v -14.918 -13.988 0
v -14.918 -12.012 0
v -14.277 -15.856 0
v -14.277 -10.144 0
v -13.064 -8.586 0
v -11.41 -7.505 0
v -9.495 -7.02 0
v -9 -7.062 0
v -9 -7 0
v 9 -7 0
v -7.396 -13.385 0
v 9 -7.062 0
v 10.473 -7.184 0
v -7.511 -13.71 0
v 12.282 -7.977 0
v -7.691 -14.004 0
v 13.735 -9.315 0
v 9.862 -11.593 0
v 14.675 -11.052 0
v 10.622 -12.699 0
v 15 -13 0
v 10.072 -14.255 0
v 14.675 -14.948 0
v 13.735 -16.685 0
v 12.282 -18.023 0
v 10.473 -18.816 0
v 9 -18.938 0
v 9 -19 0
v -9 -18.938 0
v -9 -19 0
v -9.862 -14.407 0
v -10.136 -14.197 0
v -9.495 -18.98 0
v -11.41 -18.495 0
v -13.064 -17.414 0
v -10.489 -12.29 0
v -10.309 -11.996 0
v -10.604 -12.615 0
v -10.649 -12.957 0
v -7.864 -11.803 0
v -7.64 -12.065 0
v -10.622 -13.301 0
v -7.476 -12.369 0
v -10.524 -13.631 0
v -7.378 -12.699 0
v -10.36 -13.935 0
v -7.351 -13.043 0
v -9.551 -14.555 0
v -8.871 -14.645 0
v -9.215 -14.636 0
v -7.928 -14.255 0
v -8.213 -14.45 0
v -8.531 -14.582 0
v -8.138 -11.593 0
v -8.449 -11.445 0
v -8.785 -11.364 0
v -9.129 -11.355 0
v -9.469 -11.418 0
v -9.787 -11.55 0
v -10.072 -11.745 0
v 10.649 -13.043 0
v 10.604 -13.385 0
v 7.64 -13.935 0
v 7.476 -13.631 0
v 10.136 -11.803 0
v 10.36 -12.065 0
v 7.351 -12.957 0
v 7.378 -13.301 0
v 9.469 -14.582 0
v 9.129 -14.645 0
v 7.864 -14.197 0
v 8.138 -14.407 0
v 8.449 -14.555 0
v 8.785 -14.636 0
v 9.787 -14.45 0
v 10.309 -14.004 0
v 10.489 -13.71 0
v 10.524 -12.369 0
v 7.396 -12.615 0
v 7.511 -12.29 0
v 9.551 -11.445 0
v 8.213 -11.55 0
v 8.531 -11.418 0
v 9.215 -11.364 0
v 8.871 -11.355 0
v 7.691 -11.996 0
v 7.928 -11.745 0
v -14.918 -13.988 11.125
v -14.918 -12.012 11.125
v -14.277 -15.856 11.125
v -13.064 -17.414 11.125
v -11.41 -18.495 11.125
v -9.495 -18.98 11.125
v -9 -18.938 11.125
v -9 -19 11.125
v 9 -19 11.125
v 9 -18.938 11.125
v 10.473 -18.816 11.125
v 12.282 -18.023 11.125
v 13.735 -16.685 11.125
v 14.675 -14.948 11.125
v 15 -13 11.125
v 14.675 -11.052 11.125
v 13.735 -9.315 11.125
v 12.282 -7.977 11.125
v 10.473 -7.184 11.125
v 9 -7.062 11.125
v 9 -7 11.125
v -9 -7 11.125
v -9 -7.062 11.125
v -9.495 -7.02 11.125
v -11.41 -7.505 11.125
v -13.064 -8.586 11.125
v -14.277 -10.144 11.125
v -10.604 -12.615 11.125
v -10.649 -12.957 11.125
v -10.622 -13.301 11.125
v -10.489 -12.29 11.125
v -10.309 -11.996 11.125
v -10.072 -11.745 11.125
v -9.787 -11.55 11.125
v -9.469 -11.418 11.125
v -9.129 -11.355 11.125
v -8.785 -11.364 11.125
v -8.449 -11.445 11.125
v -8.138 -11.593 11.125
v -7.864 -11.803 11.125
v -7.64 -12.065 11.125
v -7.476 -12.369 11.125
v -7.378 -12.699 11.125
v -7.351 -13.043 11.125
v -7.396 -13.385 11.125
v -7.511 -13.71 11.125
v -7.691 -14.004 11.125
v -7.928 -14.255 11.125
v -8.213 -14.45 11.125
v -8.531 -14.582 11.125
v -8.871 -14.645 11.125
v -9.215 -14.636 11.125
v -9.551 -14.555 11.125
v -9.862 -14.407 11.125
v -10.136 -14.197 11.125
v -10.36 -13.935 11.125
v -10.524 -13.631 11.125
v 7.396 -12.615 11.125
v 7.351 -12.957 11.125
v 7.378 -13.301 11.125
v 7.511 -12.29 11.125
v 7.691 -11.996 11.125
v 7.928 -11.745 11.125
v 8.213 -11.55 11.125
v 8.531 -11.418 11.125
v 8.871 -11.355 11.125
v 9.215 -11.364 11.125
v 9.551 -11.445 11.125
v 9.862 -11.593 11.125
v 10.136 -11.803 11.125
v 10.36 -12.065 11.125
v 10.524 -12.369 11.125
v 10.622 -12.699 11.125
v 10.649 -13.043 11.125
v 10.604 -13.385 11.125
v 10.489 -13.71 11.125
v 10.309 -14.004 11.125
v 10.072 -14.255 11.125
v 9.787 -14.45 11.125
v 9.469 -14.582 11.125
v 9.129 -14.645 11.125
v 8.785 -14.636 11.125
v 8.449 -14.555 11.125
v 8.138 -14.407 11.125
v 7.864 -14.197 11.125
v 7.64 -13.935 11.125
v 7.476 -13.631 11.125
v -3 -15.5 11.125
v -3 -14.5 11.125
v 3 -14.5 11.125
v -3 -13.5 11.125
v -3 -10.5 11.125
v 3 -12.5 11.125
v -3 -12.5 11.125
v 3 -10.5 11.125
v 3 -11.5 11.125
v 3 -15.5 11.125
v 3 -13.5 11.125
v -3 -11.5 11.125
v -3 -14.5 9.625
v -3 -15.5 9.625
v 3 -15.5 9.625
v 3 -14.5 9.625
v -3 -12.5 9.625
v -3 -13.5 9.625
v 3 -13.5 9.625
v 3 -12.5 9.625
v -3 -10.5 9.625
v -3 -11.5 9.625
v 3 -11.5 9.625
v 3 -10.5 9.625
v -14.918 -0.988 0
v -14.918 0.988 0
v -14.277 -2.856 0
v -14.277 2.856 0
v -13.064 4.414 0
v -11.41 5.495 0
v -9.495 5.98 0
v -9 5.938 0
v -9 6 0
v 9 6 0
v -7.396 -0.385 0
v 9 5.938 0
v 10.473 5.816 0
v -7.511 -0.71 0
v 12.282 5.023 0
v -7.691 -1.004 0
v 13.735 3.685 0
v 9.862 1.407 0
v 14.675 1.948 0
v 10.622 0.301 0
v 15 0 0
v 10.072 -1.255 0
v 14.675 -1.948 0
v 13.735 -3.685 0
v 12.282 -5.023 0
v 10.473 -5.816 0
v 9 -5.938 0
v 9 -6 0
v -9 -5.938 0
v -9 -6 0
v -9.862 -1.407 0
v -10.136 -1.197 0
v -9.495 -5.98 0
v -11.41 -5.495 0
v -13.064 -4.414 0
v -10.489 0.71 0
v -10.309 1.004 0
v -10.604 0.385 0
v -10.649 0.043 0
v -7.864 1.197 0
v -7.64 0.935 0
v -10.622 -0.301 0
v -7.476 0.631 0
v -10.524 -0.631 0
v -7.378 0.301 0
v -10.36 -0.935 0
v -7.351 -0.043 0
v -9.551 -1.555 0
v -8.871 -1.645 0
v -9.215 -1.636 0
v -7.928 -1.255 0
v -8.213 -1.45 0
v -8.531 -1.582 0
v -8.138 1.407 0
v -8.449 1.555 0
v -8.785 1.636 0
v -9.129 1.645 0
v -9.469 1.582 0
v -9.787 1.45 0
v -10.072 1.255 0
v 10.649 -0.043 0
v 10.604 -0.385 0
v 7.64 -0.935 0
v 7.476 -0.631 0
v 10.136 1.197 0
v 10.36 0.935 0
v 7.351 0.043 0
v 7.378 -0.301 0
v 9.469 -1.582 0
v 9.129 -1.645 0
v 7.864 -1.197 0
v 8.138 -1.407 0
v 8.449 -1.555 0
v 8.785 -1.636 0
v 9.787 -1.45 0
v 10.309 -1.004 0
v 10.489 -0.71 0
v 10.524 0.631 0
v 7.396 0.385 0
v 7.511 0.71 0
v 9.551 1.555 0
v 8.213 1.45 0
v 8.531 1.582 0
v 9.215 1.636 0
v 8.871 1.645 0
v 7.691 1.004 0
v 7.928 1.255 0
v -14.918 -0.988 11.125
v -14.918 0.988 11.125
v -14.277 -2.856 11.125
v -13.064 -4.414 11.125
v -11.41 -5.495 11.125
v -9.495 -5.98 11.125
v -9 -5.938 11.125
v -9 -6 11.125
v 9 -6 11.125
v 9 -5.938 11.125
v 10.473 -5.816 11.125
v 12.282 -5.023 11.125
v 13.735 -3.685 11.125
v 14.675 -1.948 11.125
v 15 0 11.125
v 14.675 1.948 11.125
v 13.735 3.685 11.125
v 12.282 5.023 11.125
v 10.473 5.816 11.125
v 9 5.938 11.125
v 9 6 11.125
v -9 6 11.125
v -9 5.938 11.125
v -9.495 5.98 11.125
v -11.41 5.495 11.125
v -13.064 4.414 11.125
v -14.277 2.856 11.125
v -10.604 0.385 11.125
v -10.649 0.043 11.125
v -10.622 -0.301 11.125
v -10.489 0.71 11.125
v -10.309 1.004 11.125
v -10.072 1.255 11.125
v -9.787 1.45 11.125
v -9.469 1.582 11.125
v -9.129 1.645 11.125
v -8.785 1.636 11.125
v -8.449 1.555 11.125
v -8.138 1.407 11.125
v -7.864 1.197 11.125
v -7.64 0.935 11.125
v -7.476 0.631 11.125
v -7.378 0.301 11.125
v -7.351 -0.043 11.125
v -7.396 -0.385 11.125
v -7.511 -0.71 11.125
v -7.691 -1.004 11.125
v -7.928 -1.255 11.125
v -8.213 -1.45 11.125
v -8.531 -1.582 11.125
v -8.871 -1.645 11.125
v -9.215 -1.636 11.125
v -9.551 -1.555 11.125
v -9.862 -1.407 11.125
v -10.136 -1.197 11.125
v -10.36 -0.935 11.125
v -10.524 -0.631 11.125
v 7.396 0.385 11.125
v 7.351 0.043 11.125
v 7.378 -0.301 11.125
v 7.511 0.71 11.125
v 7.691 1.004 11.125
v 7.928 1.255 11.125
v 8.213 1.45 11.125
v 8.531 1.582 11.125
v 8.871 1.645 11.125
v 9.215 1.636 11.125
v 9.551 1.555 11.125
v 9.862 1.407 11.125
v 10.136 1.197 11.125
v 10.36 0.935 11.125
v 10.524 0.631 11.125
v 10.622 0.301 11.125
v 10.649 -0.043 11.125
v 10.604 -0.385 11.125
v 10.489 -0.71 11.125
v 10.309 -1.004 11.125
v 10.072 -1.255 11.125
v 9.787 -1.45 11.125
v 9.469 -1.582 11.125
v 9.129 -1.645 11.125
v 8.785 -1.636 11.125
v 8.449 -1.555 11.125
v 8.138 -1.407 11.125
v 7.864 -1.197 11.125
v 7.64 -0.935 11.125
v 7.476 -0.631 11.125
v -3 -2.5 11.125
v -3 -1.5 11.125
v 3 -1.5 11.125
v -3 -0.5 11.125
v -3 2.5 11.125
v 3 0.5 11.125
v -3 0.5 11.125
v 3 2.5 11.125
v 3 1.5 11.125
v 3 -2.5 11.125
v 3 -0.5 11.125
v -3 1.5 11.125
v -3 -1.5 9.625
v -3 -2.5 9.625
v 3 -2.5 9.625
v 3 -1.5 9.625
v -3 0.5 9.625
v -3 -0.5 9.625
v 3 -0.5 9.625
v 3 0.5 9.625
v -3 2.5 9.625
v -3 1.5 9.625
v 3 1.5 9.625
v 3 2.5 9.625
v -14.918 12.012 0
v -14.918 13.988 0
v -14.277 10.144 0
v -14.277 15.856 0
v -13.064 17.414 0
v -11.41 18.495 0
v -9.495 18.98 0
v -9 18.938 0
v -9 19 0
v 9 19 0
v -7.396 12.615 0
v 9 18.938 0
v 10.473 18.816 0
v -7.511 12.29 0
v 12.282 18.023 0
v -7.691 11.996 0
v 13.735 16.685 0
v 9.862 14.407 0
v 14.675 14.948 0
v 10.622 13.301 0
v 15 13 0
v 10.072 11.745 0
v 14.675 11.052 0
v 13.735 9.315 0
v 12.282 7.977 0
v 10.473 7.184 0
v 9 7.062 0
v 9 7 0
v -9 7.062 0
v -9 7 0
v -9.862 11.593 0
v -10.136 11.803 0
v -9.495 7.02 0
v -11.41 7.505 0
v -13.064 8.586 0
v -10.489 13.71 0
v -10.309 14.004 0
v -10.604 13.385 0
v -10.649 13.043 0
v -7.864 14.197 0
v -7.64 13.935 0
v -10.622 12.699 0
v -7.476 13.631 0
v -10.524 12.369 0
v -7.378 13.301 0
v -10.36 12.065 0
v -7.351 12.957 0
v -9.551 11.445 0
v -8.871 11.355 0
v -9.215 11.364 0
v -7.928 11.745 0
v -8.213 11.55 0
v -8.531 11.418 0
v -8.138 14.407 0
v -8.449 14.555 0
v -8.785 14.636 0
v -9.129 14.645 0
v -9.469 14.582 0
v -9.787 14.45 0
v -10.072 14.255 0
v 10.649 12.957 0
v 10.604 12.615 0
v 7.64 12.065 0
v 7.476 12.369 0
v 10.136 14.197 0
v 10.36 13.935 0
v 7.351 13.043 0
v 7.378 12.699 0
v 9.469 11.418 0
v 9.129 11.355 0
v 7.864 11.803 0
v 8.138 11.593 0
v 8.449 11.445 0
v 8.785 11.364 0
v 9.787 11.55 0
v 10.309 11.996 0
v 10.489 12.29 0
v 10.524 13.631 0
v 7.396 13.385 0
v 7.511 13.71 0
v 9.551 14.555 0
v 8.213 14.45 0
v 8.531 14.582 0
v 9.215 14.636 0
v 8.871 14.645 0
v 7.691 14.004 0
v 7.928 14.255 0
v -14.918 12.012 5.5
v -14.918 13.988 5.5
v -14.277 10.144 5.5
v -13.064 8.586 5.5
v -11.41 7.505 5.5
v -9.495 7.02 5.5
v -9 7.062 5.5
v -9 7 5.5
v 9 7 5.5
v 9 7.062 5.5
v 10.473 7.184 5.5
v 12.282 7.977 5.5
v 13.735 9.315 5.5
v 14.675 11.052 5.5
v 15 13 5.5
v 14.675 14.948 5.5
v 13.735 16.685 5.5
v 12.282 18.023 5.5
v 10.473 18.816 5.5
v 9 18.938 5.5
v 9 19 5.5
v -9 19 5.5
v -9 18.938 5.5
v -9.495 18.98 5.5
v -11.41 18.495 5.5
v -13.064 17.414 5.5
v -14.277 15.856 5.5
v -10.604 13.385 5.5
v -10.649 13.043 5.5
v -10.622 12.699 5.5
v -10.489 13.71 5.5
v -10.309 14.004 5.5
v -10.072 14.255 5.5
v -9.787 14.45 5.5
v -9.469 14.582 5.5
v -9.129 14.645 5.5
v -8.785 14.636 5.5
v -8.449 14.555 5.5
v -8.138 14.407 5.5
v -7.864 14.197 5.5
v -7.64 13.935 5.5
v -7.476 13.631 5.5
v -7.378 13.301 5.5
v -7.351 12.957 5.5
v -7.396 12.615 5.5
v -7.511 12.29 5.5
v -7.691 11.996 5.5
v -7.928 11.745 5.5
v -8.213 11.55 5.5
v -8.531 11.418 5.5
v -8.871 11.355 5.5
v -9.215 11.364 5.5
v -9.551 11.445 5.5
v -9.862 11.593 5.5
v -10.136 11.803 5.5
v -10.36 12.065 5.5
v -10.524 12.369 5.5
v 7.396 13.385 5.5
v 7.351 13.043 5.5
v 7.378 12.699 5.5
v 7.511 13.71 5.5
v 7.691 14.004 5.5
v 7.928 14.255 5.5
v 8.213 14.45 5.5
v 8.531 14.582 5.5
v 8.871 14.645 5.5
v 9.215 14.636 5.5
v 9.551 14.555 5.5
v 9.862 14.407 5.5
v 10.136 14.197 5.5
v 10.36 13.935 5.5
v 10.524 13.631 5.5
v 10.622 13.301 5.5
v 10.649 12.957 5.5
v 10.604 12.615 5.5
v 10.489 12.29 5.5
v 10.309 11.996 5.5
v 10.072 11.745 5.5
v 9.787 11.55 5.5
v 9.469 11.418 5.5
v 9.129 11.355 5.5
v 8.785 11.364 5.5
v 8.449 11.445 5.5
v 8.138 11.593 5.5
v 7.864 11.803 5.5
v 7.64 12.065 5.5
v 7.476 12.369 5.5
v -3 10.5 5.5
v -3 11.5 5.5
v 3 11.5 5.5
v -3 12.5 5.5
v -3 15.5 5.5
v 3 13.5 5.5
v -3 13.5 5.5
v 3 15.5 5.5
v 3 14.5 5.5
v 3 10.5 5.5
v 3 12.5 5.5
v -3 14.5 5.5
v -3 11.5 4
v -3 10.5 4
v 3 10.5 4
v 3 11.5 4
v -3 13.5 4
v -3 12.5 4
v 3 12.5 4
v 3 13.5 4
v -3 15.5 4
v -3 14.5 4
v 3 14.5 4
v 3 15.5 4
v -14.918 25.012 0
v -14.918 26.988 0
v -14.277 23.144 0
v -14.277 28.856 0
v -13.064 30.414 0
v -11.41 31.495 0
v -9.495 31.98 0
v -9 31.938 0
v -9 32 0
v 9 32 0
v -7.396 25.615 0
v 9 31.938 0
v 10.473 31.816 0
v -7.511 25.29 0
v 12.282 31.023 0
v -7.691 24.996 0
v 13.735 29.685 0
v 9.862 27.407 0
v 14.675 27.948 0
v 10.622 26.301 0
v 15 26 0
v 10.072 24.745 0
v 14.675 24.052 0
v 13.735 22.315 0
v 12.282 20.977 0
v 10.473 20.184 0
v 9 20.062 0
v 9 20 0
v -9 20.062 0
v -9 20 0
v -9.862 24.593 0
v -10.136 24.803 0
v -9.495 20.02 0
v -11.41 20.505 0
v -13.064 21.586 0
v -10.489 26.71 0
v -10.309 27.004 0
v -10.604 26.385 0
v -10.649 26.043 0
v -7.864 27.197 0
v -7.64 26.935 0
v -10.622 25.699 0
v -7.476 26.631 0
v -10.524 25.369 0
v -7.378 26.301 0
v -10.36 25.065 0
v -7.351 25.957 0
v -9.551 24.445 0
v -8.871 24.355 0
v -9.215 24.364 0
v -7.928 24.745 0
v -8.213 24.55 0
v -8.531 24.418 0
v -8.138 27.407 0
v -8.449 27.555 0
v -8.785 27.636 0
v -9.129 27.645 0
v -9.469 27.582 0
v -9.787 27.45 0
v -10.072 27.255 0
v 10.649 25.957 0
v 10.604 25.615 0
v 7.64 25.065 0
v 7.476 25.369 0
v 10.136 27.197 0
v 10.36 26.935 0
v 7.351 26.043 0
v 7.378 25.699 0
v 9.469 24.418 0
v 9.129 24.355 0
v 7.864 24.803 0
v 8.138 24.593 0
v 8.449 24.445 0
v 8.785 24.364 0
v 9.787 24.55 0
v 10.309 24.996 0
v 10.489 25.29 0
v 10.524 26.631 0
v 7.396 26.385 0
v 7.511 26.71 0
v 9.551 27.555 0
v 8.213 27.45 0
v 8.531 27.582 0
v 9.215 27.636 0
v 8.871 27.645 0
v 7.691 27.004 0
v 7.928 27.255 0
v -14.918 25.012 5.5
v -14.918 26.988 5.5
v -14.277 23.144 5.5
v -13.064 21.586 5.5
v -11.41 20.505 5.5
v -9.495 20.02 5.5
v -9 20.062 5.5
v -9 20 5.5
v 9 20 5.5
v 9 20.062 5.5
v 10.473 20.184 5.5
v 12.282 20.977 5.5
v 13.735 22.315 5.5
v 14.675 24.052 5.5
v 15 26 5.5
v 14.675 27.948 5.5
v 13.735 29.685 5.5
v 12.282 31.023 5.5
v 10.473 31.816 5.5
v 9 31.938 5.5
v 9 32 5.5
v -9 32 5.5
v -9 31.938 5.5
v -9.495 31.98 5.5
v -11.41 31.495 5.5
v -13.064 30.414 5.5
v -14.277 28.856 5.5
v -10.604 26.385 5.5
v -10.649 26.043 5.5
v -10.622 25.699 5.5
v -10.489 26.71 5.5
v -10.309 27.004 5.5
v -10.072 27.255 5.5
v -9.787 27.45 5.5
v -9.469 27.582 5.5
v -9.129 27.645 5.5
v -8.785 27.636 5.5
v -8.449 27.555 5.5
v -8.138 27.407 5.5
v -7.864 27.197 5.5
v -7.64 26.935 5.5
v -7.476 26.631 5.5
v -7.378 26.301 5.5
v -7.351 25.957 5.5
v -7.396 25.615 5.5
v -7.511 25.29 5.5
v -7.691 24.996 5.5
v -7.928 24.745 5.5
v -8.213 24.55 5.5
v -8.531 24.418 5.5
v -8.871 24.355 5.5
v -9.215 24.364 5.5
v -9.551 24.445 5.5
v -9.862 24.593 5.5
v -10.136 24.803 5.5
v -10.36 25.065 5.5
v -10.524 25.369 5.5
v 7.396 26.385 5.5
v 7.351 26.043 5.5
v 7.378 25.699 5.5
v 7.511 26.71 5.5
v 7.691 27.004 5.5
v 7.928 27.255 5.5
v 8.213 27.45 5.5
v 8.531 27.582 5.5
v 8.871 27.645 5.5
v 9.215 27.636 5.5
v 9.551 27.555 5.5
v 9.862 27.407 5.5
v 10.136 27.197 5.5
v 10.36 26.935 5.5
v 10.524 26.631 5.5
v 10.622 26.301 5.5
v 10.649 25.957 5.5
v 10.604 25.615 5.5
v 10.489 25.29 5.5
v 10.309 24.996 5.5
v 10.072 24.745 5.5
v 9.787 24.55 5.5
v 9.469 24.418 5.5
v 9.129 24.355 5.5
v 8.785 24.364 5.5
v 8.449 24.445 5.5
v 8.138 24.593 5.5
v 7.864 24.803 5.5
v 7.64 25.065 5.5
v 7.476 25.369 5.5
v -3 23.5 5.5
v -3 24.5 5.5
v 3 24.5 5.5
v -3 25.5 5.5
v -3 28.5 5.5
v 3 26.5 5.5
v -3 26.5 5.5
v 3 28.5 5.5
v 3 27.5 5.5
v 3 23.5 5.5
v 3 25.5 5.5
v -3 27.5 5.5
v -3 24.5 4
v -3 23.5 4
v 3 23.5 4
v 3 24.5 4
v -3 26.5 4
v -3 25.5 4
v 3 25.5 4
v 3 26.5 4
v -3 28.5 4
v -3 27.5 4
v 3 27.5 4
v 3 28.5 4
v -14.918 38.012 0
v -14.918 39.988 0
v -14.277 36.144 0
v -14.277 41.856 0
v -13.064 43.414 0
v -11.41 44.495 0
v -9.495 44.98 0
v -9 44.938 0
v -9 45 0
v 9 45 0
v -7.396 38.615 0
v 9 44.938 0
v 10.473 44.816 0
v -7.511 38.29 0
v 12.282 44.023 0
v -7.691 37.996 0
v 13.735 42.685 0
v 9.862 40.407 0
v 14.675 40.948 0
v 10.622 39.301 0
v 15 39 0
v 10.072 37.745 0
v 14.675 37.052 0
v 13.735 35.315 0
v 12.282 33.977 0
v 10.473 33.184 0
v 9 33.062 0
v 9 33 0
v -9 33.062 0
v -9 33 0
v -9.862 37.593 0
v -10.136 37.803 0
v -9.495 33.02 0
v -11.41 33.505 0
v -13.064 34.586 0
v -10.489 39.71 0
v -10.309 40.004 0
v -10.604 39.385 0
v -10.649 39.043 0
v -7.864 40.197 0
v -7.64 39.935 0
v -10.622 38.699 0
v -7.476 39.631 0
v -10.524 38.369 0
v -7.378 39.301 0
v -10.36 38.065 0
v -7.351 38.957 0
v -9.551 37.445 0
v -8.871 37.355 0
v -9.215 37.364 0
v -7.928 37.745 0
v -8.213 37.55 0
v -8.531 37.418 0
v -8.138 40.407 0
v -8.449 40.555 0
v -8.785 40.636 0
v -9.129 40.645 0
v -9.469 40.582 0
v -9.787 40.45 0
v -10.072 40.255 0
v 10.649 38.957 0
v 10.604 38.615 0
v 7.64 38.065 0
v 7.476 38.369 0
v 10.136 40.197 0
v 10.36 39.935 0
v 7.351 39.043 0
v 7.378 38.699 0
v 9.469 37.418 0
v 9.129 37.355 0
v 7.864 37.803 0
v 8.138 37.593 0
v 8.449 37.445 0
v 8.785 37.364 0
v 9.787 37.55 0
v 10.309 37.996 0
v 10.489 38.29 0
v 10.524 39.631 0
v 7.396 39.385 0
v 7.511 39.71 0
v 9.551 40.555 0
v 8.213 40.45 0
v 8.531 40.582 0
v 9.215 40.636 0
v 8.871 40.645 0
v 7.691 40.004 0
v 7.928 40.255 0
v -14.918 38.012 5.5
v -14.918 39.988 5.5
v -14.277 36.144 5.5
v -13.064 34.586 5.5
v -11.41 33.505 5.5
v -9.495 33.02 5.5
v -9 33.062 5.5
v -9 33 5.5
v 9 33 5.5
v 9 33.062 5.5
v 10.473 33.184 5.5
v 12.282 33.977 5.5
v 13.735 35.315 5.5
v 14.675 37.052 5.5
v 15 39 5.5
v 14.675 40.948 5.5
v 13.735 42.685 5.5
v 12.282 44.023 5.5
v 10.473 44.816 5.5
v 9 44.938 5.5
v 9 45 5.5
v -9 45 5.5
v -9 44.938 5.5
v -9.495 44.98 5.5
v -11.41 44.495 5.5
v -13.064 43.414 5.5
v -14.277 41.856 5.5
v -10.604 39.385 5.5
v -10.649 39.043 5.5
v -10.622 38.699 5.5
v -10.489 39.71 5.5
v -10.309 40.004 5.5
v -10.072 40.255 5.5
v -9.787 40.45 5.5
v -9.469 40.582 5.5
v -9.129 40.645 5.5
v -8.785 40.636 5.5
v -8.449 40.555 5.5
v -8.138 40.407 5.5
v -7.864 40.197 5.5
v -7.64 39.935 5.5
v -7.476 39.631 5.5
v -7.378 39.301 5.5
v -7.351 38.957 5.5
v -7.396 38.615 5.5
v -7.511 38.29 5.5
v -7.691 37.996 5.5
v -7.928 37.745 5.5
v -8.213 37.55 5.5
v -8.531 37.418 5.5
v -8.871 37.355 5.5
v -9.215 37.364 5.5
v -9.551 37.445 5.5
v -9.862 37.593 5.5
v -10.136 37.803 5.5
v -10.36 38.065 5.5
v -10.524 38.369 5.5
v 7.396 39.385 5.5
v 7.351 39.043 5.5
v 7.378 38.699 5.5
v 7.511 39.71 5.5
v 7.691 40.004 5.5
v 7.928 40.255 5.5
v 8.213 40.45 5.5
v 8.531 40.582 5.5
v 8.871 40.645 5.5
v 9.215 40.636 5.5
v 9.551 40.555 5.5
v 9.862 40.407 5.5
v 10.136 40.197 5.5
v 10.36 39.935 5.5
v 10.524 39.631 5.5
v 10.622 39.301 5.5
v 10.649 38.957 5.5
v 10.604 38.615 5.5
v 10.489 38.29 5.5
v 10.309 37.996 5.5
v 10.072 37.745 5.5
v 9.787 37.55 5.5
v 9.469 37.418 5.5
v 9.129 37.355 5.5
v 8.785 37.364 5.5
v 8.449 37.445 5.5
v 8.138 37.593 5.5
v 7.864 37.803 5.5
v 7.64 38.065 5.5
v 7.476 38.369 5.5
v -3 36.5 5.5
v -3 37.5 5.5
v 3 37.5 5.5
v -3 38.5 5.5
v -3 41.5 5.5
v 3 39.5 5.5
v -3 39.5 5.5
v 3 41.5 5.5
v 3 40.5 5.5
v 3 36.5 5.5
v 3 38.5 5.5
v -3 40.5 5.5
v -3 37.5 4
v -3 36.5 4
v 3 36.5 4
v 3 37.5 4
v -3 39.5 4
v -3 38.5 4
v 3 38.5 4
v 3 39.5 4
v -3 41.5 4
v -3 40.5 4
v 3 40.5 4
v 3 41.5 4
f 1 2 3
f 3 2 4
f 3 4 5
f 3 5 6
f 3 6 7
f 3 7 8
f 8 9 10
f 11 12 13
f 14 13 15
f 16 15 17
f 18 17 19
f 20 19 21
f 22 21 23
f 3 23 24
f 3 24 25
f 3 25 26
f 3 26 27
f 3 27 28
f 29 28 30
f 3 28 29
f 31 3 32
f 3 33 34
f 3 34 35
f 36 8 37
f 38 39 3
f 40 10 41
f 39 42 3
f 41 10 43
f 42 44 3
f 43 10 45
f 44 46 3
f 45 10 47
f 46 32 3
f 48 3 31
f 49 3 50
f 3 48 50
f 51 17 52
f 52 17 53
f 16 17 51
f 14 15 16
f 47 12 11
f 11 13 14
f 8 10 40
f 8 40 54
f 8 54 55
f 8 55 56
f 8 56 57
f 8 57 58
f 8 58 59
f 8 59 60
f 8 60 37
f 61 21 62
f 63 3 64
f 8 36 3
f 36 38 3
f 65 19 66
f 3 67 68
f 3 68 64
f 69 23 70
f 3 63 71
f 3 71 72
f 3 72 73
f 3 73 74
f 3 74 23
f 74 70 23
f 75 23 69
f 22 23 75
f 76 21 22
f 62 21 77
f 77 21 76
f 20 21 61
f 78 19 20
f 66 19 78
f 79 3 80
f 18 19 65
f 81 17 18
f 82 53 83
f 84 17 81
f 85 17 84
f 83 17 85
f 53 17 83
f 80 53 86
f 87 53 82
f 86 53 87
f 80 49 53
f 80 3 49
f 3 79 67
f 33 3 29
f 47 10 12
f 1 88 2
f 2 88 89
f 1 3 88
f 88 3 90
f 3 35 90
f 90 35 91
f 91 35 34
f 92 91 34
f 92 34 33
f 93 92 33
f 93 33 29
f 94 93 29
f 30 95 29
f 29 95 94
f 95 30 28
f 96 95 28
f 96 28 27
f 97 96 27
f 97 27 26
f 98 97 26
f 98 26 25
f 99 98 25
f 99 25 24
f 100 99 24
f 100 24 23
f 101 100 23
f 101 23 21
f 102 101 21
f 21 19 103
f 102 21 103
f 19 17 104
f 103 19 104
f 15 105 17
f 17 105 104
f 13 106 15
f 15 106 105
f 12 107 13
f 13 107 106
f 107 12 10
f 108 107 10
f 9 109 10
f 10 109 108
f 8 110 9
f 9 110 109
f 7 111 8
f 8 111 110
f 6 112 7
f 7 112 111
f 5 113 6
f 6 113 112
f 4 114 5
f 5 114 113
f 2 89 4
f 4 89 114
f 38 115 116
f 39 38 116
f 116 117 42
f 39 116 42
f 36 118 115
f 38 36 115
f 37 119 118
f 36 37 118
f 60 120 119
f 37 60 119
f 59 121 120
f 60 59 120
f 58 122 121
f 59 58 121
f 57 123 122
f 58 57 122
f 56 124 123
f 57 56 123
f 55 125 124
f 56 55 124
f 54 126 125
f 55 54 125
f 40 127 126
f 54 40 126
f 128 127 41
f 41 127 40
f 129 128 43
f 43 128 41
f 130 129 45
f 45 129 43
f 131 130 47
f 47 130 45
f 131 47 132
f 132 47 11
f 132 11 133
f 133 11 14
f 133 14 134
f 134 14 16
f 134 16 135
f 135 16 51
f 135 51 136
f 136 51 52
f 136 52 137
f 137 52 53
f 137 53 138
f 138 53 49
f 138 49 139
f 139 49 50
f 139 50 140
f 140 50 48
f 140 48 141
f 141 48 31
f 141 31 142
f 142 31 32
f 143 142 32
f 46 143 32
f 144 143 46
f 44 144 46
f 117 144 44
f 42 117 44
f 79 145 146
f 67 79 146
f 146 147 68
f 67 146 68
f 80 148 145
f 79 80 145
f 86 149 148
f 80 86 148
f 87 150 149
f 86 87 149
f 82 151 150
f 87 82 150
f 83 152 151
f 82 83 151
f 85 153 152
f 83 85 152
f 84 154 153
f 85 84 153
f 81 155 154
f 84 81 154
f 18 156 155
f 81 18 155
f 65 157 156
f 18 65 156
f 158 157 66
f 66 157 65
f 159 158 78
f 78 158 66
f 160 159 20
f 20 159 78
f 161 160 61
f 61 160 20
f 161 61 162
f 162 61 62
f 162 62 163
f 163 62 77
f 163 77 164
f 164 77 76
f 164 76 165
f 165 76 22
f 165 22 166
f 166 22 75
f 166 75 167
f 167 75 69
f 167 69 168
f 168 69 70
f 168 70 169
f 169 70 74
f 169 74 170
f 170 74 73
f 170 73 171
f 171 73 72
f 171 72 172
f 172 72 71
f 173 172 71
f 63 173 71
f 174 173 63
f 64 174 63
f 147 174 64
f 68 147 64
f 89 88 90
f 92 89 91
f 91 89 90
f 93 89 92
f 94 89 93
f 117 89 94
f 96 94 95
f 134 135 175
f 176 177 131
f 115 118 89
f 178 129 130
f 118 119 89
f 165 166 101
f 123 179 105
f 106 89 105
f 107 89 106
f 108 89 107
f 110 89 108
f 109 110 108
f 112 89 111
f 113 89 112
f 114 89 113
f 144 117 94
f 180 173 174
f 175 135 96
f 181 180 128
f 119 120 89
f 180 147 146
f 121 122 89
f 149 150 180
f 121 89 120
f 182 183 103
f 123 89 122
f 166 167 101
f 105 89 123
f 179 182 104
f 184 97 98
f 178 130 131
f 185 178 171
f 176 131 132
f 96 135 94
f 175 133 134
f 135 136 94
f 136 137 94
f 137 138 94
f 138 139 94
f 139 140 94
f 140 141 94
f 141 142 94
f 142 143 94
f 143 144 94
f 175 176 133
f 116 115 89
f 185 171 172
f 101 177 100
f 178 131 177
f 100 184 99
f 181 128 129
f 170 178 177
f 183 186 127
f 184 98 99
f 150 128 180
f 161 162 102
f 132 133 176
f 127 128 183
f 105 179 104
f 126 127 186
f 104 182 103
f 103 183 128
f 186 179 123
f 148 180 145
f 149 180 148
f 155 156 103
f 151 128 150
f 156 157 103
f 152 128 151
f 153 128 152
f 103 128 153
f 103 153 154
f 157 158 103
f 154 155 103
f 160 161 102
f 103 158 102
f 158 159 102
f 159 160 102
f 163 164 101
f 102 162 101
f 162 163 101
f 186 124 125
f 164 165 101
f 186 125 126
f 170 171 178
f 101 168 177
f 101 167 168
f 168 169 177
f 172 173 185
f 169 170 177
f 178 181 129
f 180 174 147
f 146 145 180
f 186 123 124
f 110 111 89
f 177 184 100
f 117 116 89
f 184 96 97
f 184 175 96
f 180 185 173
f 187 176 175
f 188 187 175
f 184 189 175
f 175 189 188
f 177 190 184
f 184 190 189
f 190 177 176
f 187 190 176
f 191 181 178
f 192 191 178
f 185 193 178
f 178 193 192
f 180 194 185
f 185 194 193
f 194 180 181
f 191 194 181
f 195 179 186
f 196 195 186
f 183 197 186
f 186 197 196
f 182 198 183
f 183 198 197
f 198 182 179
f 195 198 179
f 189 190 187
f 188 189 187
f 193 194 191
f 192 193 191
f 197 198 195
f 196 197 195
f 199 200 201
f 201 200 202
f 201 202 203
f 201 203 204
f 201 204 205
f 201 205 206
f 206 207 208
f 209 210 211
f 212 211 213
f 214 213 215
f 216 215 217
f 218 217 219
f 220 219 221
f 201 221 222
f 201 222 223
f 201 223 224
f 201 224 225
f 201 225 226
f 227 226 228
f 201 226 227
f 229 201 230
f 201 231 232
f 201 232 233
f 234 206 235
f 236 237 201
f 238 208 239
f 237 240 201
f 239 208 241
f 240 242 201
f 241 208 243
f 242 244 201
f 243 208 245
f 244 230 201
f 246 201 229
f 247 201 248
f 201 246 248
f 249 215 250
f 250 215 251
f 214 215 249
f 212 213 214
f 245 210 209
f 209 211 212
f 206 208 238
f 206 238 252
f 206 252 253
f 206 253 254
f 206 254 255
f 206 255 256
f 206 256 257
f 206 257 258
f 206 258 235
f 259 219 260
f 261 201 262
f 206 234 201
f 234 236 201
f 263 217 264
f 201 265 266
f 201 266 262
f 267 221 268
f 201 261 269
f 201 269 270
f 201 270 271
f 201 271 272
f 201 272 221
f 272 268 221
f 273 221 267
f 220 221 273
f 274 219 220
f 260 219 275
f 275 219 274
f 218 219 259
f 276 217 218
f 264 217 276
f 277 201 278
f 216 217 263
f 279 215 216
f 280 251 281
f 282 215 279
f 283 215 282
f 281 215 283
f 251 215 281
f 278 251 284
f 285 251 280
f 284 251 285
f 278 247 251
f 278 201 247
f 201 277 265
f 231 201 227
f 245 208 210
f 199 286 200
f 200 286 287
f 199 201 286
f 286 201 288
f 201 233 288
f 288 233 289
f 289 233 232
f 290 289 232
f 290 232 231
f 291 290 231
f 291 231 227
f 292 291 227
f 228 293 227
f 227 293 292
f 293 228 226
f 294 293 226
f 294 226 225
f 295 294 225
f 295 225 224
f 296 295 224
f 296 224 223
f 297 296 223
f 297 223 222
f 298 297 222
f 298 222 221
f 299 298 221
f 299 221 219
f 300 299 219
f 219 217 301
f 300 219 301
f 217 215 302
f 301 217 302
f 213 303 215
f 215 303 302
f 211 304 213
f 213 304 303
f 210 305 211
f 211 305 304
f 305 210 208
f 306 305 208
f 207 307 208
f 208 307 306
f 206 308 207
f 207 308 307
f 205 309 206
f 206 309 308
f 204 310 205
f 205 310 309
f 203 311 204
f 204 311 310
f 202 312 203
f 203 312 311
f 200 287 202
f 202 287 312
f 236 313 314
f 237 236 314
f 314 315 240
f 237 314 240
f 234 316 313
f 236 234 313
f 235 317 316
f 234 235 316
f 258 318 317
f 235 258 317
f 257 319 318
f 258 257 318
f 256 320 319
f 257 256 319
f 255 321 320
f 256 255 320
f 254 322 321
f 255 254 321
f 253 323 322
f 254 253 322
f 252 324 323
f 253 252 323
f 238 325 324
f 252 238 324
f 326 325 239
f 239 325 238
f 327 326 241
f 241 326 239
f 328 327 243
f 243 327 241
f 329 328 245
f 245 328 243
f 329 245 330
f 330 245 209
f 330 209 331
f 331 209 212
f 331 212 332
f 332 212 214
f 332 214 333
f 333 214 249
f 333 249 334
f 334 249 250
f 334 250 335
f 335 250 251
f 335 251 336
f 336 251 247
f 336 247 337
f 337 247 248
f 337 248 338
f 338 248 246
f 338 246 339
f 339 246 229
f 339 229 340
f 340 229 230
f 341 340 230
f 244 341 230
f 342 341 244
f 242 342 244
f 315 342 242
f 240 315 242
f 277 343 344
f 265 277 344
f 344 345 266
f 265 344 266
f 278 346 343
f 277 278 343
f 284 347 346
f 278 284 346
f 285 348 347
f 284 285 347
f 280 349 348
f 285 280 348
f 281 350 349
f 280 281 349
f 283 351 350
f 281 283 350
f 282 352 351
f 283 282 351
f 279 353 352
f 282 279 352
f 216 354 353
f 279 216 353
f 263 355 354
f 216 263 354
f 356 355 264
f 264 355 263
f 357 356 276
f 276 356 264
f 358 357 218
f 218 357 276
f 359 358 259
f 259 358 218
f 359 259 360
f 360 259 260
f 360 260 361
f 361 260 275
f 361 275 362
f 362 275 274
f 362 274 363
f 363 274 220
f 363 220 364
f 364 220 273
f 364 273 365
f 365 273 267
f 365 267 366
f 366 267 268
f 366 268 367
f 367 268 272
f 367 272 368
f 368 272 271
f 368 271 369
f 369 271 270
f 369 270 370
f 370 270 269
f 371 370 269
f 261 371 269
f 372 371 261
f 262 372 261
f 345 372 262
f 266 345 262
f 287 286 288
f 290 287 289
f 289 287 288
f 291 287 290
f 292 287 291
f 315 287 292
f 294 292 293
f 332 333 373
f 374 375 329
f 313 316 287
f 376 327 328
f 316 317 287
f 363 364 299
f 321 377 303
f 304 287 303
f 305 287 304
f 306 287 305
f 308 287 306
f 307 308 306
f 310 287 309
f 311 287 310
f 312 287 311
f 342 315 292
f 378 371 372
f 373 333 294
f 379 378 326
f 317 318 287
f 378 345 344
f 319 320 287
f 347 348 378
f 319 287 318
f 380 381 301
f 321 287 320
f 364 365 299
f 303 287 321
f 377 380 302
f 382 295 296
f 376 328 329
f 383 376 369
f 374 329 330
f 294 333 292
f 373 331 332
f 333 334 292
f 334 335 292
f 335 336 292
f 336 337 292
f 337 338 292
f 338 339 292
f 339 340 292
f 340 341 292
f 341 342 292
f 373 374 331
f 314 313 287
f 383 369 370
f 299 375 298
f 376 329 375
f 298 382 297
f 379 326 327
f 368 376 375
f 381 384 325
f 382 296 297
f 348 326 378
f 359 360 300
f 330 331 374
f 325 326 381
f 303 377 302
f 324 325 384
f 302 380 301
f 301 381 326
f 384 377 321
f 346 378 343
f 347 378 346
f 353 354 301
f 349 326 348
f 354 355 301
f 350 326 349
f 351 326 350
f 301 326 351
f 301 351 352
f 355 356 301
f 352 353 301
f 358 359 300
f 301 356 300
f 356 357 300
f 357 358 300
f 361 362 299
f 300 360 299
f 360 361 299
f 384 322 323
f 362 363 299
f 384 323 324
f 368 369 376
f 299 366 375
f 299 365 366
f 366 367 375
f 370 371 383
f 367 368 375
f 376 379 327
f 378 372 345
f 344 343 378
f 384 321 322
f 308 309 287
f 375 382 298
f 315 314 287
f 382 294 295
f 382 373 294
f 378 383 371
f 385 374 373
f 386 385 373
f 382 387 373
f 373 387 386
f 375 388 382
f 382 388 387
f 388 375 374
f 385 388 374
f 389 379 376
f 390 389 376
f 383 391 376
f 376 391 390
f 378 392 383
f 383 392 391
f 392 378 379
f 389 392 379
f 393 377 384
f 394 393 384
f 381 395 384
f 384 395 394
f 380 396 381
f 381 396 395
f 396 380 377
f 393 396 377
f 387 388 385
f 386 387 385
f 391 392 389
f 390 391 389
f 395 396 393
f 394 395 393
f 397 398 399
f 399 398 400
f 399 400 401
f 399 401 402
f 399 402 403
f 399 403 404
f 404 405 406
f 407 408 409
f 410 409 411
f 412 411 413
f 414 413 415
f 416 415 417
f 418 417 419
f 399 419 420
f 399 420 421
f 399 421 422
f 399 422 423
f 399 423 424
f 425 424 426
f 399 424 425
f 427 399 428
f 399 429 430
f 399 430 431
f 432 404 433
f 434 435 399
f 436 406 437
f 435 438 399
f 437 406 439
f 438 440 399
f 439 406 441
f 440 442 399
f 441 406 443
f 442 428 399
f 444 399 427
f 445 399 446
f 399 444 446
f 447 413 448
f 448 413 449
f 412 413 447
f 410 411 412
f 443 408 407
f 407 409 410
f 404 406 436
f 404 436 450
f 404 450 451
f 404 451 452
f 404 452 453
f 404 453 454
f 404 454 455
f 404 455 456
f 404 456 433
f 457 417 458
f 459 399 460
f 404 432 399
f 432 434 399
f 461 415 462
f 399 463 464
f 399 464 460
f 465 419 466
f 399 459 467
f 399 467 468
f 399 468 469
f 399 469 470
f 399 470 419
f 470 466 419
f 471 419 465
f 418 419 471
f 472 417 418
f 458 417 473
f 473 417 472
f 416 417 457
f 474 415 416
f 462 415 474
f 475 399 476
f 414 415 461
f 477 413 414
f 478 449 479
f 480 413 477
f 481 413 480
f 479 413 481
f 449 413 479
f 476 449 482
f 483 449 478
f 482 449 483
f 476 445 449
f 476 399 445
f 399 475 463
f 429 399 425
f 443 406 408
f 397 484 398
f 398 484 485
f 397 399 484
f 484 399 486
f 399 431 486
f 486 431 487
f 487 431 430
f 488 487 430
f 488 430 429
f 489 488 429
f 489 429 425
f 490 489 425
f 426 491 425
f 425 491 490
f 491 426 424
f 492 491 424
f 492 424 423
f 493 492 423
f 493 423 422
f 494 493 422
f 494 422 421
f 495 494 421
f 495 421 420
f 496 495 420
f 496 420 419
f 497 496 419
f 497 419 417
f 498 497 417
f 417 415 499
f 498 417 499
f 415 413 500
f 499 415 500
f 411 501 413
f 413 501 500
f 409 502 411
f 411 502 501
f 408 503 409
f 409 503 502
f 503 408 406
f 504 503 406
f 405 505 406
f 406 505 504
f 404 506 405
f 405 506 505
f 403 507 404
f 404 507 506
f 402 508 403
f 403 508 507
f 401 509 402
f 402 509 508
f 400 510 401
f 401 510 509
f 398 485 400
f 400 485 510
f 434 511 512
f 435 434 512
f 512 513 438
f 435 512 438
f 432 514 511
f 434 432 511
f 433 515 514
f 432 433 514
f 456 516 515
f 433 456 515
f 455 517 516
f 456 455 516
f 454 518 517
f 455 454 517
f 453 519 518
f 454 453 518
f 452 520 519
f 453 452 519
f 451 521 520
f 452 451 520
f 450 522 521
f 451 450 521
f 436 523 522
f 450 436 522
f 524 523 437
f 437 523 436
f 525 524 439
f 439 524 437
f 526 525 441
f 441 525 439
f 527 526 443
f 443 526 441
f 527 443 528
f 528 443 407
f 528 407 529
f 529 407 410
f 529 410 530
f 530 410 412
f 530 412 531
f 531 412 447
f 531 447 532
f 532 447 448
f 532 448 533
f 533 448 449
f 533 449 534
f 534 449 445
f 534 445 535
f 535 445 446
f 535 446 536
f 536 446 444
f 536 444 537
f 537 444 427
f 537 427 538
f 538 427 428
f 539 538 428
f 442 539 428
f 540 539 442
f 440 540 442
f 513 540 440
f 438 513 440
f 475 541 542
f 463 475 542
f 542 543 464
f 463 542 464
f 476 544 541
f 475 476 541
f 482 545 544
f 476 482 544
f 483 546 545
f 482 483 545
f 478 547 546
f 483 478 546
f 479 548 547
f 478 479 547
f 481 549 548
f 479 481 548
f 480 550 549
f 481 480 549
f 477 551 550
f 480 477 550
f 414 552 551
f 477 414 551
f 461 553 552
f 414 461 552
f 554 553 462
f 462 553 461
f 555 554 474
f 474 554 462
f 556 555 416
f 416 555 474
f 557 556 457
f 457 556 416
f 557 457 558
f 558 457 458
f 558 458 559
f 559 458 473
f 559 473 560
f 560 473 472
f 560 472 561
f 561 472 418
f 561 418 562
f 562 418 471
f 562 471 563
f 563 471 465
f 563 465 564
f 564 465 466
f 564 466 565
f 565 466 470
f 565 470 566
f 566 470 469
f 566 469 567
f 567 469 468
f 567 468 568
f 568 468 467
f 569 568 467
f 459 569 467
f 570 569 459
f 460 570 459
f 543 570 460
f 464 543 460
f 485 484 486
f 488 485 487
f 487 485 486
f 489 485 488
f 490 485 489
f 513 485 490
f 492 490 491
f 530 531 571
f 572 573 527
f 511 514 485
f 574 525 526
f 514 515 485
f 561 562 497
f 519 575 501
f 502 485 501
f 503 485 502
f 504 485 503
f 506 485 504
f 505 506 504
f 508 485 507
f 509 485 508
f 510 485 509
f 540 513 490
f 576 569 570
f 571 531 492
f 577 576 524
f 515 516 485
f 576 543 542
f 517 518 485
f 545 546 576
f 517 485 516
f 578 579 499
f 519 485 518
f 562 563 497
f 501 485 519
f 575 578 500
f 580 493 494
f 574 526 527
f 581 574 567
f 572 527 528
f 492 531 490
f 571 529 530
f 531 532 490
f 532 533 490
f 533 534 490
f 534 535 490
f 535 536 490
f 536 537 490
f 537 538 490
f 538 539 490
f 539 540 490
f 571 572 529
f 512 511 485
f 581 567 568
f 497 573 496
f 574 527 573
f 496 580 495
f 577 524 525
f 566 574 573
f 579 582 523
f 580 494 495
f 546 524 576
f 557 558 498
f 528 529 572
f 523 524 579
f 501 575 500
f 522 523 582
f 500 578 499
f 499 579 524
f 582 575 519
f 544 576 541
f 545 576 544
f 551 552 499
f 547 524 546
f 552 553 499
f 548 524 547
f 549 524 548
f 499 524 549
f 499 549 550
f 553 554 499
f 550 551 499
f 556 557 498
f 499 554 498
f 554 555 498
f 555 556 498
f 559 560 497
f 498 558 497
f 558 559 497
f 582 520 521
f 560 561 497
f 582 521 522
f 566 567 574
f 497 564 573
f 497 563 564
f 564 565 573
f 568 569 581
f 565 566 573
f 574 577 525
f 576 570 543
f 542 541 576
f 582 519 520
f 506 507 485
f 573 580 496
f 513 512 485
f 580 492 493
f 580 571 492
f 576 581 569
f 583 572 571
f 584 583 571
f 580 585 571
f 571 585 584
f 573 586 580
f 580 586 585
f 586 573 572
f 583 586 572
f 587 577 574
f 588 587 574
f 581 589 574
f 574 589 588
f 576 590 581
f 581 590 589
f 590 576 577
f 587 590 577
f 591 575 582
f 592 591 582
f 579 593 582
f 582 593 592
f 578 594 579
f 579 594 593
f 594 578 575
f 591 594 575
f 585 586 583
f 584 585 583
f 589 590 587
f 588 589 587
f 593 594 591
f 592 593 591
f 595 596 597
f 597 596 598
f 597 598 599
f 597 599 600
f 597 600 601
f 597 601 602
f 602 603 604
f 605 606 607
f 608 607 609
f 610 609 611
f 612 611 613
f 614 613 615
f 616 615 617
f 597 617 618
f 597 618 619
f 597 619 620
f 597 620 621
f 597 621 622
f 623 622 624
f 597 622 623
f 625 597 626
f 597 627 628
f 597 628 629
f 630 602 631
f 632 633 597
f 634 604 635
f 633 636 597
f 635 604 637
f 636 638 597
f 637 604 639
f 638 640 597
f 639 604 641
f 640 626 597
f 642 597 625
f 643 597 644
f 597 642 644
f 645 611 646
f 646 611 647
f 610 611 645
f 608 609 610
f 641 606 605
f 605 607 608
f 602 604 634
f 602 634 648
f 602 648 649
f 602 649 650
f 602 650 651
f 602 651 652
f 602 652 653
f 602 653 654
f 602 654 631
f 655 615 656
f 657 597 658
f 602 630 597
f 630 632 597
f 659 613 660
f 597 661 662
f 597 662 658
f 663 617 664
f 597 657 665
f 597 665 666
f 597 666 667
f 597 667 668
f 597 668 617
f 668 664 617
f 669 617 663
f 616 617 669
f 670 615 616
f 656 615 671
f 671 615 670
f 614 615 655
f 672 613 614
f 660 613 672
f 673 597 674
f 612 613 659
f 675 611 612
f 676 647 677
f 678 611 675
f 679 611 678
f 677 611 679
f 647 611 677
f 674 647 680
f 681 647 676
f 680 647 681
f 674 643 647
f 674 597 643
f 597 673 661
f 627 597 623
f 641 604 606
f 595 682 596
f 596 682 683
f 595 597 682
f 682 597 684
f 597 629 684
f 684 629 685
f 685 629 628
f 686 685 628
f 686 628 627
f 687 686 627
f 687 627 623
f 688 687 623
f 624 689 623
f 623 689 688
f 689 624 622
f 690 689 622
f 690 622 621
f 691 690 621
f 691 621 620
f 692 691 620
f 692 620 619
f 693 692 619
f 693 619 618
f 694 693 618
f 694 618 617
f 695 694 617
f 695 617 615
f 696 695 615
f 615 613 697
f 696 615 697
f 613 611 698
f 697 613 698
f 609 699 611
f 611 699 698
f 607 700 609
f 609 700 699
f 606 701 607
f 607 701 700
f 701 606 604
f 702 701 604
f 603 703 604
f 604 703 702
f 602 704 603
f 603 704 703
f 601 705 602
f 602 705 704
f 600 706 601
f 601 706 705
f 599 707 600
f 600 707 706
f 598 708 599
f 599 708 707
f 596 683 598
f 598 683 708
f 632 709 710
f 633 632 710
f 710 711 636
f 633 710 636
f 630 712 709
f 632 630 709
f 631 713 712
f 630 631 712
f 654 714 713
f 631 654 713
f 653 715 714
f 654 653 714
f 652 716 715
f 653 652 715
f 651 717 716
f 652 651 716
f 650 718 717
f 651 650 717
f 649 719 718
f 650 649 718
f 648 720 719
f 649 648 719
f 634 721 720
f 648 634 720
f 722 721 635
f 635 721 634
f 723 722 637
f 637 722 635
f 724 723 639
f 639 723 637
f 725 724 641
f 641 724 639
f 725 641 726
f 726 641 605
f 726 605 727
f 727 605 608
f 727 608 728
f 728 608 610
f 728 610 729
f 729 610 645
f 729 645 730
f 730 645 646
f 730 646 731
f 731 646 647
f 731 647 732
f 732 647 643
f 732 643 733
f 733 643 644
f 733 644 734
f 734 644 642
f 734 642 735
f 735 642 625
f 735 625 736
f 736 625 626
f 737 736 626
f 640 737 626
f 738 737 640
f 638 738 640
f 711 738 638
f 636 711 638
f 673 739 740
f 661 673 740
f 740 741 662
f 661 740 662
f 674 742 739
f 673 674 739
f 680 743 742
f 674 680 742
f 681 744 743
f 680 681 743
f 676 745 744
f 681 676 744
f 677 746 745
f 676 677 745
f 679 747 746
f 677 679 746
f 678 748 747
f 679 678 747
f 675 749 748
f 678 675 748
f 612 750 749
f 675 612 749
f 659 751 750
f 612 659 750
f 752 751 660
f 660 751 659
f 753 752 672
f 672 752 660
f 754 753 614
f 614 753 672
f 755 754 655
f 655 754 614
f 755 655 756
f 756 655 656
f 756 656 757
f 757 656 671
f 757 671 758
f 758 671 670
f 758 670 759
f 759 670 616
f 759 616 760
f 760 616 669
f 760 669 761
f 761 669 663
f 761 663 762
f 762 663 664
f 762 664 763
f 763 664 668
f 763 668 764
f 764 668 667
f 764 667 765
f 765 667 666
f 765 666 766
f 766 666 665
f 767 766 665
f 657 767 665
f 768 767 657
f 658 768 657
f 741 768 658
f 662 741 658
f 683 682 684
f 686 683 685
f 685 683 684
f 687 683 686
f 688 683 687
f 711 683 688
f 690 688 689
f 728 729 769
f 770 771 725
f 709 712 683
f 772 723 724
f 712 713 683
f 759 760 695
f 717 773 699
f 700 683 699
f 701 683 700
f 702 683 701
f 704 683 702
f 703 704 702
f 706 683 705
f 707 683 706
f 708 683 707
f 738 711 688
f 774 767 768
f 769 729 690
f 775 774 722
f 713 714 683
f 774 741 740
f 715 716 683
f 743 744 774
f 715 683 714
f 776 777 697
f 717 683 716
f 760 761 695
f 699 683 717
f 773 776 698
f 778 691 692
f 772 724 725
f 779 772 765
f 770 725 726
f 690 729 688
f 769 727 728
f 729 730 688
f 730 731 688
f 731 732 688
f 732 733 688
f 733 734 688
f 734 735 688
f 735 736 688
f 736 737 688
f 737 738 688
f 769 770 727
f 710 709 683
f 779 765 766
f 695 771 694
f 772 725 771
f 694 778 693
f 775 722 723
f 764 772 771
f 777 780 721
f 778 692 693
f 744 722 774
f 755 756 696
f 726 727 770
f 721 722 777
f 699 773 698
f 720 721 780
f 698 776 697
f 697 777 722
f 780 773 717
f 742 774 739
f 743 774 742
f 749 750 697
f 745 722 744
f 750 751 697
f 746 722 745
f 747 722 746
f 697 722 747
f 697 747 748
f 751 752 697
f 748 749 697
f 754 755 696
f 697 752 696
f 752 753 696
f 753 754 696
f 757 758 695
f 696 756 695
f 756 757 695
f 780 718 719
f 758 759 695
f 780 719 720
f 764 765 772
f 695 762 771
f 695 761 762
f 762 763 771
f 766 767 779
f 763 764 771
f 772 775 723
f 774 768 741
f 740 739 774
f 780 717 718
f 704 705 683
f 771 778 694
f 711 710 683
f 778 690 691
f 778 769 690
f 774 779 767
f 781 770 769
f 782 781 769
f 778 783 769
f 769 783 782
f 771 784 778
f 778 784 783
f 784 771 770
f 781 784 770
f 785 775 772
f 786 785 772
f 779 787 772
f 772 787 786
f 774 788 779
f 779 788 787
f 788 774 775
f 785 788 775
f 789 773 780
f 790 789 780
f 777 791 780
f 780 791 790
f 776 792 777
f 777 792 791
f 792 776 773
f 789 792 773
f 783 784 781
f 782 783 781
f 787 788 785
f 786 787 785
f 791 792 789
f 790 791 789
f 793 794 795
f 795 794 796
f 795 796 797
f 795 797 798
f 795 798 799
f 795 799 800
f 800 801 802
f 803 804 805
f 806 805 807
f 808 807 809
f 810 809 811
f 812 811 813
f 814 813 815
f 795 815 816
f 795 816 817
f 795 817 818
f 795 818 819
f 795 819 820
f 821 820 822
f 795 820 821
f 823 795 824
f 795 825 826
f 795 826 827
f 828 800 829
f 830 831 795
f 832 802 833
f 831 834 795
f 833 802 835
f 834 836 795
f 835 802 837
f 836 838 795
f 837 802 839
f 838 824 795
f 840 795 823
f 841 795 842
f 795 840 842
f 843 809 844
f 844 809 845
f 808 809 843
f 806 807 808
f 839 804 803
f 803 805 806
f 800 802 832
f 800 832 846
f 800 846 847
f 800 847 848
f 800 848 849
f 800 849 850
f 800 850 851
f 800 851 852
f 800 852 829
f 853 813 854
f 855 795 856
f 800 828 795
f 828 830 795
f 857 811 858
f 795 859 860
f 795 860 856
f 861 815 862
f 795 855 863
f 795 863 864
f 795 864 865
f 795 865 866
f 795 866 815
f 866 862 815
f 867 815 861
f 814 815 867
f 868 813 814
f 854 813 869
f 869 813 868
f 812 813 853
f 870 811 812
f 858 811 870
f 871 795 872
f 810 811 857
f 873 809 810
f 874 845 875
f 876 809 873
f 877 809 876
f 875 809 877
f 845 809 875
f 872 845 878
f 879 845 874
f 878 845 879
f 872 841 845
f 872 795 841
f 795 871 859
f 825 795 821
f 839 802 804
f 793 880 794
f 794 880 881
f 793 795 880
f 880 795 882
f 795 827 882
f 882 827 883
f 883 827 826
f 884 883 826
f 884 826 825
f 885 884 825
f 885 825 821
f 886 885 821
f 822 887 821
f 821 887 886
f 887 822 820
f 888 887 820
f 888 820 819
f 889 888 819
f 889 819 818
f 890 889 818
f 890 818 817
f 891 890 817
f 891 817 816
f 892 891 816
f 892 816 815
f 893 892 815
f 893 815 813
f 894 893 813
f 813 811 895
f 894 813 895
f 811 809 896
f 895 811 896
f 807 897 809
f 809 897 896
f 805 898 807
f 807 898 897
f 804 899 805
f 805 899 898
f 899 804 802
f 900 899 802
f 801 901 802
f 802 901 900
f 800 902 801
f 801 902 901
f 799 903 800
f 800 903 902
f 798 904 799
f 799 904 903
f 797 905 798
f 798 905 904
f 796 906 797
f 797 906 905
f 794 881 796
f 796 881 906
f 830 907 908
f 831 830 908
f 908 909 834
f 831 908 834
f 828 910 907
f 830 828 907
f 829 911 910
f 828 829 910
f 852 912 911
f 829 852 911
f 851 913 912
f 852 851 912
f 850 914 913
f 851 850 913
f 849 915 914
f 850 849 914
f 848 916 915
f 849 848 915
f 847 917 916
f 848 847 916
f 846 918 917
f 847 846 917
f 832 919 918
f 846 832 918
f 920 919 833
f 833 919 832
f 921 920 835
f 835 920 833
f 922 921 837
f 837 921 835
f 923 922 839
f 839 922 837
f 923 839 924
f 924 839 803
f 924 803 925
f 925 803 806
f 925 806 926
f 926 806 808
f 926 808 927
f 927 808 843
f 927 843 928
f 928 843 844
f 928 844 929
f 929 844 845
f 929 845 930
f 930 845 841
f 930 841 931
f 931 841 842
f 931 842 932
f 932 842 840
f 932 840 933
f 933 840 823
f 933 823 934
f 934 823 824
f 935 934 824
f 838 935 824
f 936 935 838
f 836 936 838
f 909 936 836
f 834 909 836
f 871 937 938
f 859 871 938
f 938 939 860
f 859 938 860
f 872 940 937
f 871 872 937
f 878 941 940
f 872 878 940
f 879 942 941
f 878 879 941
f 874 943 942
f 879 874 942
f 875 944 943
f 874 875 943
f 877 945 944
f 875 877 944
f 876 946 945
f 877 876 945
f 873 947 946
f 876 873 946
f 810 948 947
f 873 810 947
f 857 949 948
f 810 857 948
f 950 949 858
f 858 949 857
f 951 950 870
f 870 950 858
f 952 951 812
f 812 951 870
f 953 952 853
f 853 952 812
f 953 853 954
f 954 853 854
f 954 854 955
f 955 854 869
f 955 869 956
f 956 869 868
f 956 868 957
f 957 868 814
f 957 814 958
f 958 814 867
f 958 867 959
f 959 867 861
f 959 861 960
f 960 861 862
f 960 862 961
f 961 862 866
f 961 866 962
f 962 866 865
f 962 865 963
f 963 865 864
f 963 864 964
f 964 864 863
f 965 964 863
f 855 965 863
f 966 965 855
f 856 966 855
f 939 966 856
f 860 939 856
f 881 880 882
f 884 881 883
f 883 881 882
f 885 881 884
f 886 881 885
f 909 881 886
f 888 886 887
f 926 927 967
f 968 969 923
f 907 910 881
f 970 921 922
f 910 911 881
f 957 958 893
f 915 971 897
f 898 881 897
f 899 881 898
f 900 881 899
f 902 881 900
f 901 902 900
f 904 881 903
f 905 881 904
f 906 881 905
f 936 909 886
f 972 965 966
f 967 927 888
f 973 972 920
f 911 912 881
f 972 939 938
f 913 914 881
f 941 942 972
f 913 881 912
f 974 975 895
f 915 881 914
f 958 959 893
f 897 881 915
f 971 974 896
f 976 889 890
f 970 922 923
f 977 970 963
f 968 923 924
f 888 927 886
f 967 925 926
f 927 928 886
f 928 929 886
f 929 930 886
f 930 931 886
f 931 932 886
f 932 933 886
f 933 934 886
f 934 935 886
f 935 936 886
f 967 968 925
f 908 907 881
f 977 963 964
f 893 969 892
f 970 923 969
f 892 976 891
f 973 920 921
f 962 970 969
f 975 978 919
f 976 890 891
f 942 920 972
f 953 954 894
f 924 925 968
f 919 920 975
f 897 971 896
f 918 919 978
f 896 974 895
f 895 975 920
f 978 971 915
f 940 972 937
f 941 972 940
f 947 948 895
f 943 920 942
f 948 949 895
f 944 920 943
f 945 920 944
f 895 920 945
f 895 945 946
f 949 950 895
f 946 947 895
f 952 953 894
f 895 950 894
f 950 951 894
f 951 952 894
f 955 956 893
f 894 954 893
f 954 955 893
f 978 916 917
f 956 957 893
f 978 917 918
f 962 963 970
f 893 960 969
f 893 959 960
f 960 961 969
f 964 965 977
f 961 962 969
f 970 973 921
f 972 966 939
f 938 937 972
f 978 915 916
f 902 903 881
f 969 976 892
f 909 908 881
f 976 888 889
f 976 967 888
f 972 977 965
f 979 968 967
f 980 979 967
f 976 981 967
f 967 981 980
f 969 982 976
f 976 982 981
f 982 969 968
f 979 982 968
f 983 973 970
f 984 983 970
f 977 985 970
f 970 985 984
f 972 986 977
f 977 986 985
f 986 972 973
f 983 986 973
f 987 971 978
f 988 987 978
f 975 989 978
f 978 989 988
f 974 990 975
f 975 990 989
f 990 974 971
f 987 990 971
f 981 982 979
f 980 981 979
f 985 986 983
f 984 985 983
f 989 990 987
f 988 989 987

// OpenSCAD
// file: functions.scad
// PRUSA Mendel  
// Functions used in many files
// GNU GPL v2
// Josef Průša
// josefprusa@me.com
// prusadjs.cz
// http://www.reprap.org/wiki/Prusa_Mendel
// http://github.com/prusajr/PrusaMendel

module nut(d,h,horizontal=true){
cornerdiameter =  (d / 2) / cos (180 / 6);
cylinder(h = h, r = cornerdiameter, $fn = 6);
if(horizontal){
for(i = [1:6]){
	rotate([0,0,60*i]) translate([-cornerdiameter-0.2,0,0]) rotate([0,0,-45]) cube(size = [2,2,h]);
}}
}

// By nophead
module polyhole(d,h) {
    n = max(round(2 * d),3);
    rotate([0,0,180])
        cylinder(h = h, r = (d / 2) / cos (180 / n), $fn = n);
}

module roundcorner(diameter){
	difference(){
		cube(size = [diameter,diameter,99], center = false);
		translate(v = [diameter, diameter, 0]) cylinder(h = 100, r=diameter, center=true);
	}
}
// file: metric.scad
// PRUSA Mendel  
// Default metric sizes
// GNU GPL v2
// Josef Průša
// josefprusa@me.com
// prusadjs.cz
// http://www.reprap.org/wiki/Prusa_Mendel
// http://github.com/prusajr/PrusaMendel

// DONT CHANGE THIS FILE! ALTER VALUES IN CONFIGURATION.SCAD INSTEAD

// RODS

threaded_rod_diameter = 8;
threaded_rod_diameter_horizontal = 8;
smooth_bar_diameter = 8;
smooth_bar_diameter_horizontal = 8;

// Nuts and bolts

m8_diameter = 8;
m8_nut_diameter = 14.5;

m4_diameter = 4;
m4_nut_diameter = 7.5;

m3_diameter = 3;
m3_nut_diameter = 5;

// Bushing holder

bushing_core_diameter = smooth_bar_diameter;
bushing_material_thickness = 1;

// Motors

motor_shaft = 5.1;
// file: configuration.scad
// PRUSA Mendel  
// Configuration file
// GNU GPL v2
// Josef Průša
// josefprusa@me.com
// prusadjs.cz
// http://www.reprap.org/wiki/Prusa_Mendel
// http://github.com/prusajr/PrusaMendel

// PLEASE SELECT ONE OF THE CONFIGURATIONS BELOW
// BY UN-COMMENTING IT

// Uncomment for metric settings
// METRIC METRIC METRIC METRIC METRIC METRIC METRIC METRIC 

include <metric.scad>;

// Uncomment for imperial settings
// IMPERIAL IMPERIAL IMPERIAL IMPERIAL IMPERIAL IMPERIAL IMPERIAL 

//include <sae.scad>;

//thin_wall = 3;
// LM8UU
//linear = false;

// override settings by customizing below
// CUSTOM CUSTOM CUSTOM CUSTOM CUSTOM CUSTOM CUSTOM CUSTOM CUSTOM

threaded_rod_diameter = 8.2;
threaded_rod_diameter_horizontal = 8.2;
smooth_bar_diameter = 8.3;
smooth_bar_diameter_horizontal = 8.3;

// Nuts and bolts

m8_diameter = 8.3;
m8_nut_diameter = 15;

m4_diameter = 4.2;
m4_nut_diameter = 9;

m3_diameter = 3.3;
m3_nut_diameter = 5.8;

///counted stuff
m3_nut_diameter_bigger = ((m3_nut_diameter  / 2) / cos (180 / 6))*2;

// functions 
include <functions.scad>
// main file
// Gregs configuration file
include <configuration.scad>

belt_width=6;
belt_thickness=1.5; 
tooth_height=1.5;
tooth_spacing=2;
sd = m3_diameter;

belt_clamp_thickness=5.5; 
//belt_clamp_width=m3_diameter+3*belt_clamp_thickness+2;
belt_clamp_width = 12;

belt_clamp_hole_separation=18;

belt_clamp_height=m3_diameter+2*belt_clamp_thickness;
belt_clamp_length=belt_clamp_hole_separation+m3_diameter+2*belt_clamp_thickness;

belt_clamp_channel_height=belt_thickness+tooth_height+belt_clamp_thickness*1.4;
belt_clamp_clamp_height=tooth_height+belt_clamp_thickness*1.75;

belt_clamps(belt_clamp_width, belt_clamp_clamp_height, belt_clamp_channel_height);

module belt_clamps(bcw = belt_clamp_width, clmph = belt_clamp_clamp_height, chnh = belt_clamp_channel_height, sd = sd) {
	for (i=[-1, 0])
		translate([0,i*(bcw + 1),0])
	belt_clamp(clmph, sd);

	//belt_clamp_channel(chnh, sd);

	for (i=[1,2,3])
		translate([0,i*(bcw+1),0])
	belt_clamp(5.5);
}

module belt_clamp_socket(bch)
{
	difference()
	{
		translate([0,0,bch/2])
		union()
		{
			cube([belt_clamp_hole_separation,belt_clamp_width,bch],center=true);
			for(i=[-1,1])
			translate([i*belt_clamp_hole_separation/2,0,0])
			cylinder(r=belt_clamp_width/2,h=bch,center=true);
		}
		belt_clamp_holes(sd);
	}
}

module belt_clamp_channel(bcchh, sd)
{
	difference()
	{
		translate([0,0,bcchh/2])
		union()
		{
			cube([belt_clamp_hole_separation,belt_clamp_width,bcchh],center=true);
			for(i=[-1,1])
			translate([i*belt_clamp_hole_separation/2,0,0])
			cylinder(r=belt_clamp_width/2,h=bcchh,center=true);
		}

		for(i=[-1,1])
		translate([i*belt_clamp_hole_separation/2,0,-1])
		rotate(360/16)
		cylinder(r=sd/2, h=bcchh+2, $fn=30);

		translate([-belt_width/2,-belt_clamp_width/2-1,bcchh - belt_thickness-tooth_height])
		cube([belt_width,belt_clamp_width+2,belt_thickness+tooth_height+1]);
	}
}

module belt_clamp_holes(sd)
{
	translate([0,0,belt_clamp_height/2])
	{
		for(i=[-1,1]) {
			translate([i*belt_clamp_hole_separation/2,0,0])
				cylinder(r=m3_diameter/2,h=belt_clamp_height+2,center=true,$fn=30);
		}
	
		rotate([90,0,0])
		rotate(360/16)
		cylinder(r=sd, h=belt_clamp_width+2, center=true, $fn=30);

		rotate([90,0,0]) 
		translate([0,0,belt_clamp_width/2])
		cylinder(r=m3_nut_diameter/2-0.3 /*tight*/ ,h=3.4,center=true,$fn=30);
	}
}

module belt_clamp(bcch)
{
	difference()
	{
		translate([0,0,bcch/2])
		union()
		{
			cube([belt_clamp_hole_separation,belt_clamp_width,bcch],center=true);
			for(i=[-1,1]) {
				translate([i*belt_clamp_hole_separation/2,0,0])
					cylinder(r=belt_clamp_width/2,h=bcch,center=true);
			}
		}

		for(i=[-1,1]) {
			translate([i*belt_clamp_hole_separation/2,0,-1])
			rotate(360/16)
				cylinder(r=m3_diameter/2,h=bcch+2,$fn=30);
		}

		for(i=[-1:1]) {
			translate([-belt_width/2,-tooth_spacing/4+i*tooth_spacing,bcch - tooth_height])
				cube([belt_width,tooth_spacing/2,tooth_height+1]);
		}
	}
}
